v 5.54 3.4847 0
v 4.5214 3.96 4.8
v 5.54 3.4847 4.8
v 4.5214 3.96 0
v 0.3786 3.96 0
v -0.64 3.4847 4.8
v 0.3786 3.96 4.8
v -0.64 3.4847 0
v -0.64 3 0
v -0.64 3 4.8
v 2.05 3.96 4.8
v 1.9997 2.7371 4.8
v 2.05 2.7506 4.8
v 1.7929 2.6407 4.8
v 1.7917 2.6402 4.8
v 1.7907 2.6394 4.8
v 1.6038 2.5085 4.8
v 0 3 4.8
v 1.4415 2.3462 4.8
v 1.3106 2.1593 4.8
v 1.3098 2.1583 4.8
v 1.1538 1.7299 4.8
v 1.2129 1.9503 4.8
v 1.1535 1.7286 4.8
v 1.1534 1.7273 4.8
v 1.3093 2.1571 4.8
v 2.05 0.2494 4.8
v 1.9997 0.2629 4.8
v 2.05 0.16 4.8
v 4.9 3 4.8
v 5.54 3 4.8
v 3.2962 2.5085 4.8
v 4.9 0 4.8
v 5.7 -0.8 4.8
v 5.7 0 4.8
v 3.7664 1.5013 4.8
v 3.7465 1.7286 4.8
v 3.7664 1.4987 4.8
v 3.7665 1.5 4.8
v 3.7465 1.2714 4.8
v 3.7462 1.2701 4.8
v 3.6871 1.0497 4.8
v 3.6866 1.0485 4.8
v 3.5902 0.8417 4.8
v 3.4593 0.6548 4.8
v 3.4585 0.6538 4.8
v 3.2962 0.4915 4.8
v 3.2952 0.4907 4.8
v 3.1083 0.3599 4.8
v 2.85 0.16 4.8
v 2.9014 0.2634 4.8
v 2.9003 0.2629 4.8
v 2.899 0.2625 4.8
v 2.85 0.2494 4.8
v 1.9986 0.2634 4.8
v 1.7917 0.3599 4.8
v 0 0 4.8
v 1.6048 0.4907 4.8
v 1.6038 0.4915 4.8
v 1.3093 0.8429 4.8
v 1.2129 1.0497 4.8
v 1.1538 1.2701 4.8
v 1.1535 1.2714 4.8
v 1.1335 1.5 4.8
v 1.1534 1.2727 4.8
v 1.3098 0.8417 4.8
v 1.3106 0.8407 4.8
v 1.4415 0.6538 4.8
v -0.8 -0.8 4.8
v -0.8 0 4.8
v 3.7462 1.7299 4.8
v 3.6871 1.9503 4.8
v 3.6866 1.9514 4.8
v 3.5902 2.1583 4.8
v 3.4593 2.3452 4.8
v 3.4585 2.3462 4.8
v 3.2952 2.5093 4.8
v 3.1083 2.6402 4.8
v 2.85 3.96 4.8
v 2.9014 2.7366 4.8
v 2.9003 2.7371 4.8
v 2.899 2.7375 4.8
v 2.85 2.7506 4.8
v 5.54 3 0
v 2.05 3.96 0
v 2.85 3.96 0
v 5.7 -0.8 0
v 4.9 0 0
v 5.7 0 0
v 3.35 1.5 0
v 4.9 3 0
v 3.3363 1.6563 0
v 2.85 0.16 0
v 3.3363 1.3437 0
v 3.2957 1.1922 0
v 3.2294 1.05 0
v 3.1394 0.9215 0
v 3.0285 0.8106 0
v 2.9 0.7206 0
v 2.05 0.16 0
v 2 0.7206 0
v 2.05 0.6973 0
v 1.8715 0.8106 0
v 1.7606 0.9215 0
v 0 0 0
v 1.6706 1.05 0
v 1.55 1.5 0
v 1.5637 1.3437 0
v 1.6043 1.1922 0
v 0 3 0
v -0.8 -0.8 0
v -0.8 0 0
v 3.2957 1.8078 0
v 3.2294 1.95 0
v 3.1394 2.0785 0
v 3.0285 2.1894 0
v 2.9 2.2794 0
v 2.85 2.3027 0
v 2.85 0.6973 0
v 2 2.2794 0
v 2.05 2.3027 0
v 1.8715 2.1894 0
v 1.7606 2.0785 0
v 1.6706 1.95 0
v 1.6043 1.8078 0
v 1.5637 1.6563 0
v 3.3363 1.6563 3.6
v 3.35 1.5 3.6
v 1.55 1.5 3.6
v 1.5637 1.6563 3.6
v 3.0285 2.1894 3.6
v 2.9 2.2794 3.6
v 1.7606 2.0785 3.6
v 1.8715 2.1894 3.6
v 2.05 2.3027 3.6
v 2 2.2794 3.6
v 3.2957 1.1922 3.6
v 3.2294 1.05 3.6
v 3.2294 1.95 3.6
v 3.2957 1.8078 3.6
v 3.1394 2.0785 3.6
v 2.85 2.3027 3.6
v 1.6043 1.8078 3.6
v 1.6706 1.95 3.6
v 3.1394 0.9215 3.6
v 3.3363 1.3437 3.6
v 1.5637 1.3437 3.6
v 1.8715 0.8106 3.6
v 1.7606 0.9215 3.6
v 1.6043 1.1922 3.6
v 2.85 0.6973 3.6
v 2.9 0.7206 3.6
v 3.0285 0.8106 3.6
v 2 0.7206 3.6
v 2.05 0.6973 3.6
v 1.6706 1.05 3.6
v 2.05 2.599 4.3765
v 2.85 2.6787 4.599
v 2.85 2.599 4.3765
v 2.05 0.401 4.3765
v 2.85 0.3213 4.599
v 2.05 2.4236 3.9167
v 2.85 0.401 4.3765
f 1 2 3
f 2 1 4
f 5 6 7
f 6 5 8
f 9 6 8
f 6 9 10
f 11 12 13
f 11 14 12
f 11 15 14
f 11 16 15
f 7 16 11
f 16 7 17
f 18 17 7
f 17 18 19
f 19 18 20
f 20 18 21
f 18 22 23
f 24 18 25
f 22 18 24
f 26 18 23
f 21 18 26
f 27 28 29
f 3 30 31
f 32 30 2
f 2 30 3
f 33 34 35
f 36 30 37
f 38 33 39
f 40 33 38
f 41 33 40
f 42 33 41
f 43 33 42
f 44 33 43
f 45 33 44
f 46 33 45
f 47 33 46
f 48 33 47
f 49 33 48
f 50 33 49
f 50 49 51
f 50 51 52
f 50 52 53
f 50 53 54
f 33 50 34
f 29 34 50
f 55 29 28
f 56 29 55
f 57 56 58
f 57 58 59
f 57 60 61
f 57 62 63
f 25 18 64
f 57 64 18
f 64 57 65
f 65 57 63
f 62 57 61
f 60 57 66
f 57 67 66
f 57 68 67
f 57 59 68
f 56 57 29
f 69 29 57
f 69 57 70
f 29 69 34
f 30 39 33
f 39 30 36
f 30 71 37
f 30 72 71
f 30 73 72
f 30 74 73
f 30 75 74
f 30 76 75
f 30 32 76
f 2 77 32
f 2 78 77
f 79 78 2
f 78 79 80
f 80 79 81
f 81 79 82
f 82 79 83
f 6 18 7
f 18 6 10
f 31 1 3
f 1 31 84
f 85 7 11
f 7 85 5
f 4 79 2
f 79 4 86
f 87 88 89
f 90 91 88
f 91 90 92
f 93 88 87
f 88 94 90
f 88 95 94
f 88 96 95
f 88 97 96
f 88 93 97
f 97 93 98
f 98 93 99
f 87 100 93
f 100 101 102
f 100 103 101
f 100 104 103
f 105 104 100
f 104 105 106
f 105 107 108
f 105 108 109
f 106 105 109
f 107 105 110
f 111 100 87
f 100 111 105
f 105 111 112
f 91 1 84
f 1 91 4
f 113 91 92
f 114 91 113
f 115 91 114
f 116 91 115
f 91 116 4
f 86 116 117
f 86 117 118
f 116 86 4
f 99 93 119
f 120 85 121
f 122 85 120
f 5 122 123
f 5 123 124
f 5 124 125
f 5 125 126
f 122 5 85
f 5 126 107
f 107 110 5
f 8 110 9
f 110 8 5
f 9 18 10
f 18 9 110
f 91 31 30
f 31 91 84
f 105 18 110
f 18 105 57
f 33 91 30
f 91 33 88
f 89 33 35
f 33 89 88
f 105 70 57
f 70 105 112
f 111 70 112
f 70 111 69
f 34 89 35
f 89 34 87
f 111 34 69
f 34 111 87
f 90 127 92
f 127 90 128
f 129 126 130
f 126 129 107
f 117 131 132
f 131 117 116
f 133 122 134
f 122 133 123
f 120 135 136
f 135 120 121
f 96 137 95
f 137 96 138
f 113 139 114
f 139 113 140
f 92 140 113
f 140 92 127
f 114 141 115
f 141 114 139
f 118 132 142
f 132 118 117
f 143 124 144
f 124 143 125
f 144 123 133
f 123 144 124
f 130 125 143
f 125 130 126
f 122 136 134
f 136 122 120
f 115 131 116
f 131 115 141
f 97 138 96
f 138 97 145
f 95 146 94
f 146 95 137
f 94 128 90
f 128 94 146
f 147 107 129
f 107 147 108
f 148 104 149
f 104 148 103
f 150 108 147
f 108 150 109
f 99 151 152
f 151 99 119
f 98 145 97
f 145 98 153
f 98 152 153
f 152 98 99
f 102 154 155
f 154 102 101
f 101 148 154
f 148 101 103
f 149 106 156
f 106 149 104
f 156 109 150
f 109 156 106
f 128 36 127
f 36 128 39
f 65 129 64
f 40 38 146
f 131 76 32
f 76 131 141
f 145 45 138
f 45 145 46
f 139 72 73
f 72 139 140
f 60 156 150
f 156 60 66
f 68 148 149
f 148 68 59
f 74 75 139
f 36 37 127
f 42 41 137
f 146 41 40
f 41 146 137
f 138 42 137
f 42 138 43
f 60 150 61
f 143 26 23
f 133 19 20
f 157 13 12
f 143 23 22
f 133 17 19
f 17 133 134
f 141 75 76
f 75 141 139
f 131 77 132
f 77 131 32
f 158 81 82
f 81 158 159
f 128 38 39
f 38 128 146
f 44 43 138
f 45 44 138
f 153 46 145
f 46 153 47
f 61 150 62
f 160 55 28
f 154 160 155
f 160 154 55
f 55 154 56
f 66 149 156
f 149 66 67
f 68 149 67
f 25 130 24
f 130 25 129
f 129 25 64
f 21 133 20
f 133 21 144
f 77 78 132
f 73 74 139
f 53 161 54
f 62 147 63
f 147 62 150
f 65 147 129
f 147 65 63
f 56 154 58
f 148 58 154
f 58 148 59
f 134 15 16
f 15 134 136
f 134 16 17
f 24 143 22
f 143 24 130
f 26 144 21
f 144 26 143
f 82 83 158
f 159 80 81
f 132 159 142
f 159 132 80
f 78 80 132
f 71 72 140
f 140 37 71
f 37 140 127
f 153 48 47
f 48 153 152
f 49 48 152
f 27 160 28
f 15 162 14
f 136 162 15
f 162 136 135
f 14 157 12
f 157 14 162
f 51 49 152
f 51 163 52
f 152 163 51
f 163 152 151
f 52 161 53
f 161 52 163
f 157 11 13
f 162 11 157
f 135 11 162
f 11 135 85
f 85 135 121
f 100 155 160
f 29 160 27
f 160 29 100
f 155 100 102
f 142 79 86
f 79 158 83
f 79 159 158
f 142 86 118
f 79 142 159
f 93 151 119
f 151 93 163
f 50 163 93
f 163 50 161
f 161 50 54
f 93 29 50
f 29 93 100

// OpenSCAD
$fn = 36;

/////////////////////////////////////////
//   SETTINGS  

MaterialThickness = 3;
HoleDiameter = 1.8; 

HoleOffset = MaterialThickness/2; // center 
//HoleOffset = (HoleDiameter/2)  + 2; // offset by distance between hole and material egde

Width = 4.9;
Height = Width-0.1; // luft lassen

/////////////////////////////////////////


min_print_cap = 0.8; // min printable size

nupsiunten_x = max(min_print_cap,MaterialThickness/6.0);
nupsiunten_y = nupsiunten_x;
echo("nupsiunten_x" , nupsiunten_x);
echo("nupsiunten_y" , nupsiunten_y);

nupsioben_x = nupsiunten_x * 0.8;
//nupsioben_y = nupsioben_x + max(HoleOffset,MaterialThickness) - MaterialThickness +  HoleDiameter/5;
nupsioben_y = max(nupsiunten_y*1.2,(HoleOffset + HoleDiameter/2 + 1  ) - MaterialThickness);

echo("nupsioben_x" , nupsioben_x);
echo("nupsioben_y" , nupsioben_y);
nutbreite = max(nupsioben_x*1.2,max(min_print_cap,HoleDiameter*0.3));

echo("nutbreite" , nutbreite);

nutsteghoehe = nupsiunten_y*1.2; // von ganz untens bis innenkante nut (da wo es sich verbiegt)

senkungstopdurchmesser = (HoleDiameter * 1.3) + 0.3; // schraubendurchmesser + einbautolleranz
senkungstiefe = 1.2;

difference() {
    basebox();
    loch();
}


module loch(){
    // loch
    translate([Width/2 , HoleOffset , -0.01]) {
        cylinder( Height+0.02 , HoleDiameter/2 , HoleDiameter/2 , false);
    }   
    // senkung
    translate([Width/2 , HoleOffset , Height - senkungstiefe]) {
        cylinder( senkungstiefe+0.01 , HoleDiameter/2, senkungstopdurchmesser/2, false);
    }   
   
    //translate([Width/2 , HoleOffset , -0.01]) {
    //    cylinder( senkungstiefe+0.01 ,  senkungstopdurchmesser/2, HoleDiameter/2,false);
    //}   
   
    //nut
    translate([((Width/2)-(nutbreite/2)),nutsteghoehe-nupsiunten_y,-0.01]) {
        cube([nutbreite,100,Height+0.02]);
    }
} 

module nupsisoben(){
    difference(){
        translate([-nupsioben_x,MaterialThickness,-0]) {
        cube([Width+nupsioben_x+nupsioben_x,nupsioben_y,Height]);
        };
        ecken();
    };
}

module ecken(){
    // rechts
    translate([0,0,-0.01]) {
        linear_extrude(100) {
            polygon(points=[
             [ Width+nupsioben_x + 0.01 , MaterialThickness - 0.01 ] ,
             [ Width+nupsioben_x + 0.01 , MaterialThickness + nupsioben_y / 2 ],
             [ Width - 0.4              , MaterialThickness + nupsioben_y + 0.01 ],
             [ Width+nupsioben_x + 0.01 , MaterialThickness + nupsioben_y + 0.01 ] 
            ]);
        };
    }
    //links
    translate([0,0,-0.01]) {
        linear_extrude(100) {
            polygon(points=[
             [ -nupsioben_x - 0.01 , MaterialThickness - 0.01 ],
             [ -nupsioben_x - 0.01 , MaterialThickness + nupsioben_y / 2 ],
             [  0 + 0.4            , MaterialThickness + nupsioben_y + 0.01 ],
             [ -nupsioben_x - 0.01 , MaterialThickness + nupsioben_y + 0.01 ],
            ]);
        };
    };
}
    
    
module basebox(){   
    cube([Width,MaterialThickness,Height]);

    // nupsiunten
    translate([-nupsiunten_x,-nupsiunten_y,0]) {
        cube([Width+nupsiunten_x+nupsiunten_x,nupsiunten_y,Height]);
    }
    nupsisoben();
}
